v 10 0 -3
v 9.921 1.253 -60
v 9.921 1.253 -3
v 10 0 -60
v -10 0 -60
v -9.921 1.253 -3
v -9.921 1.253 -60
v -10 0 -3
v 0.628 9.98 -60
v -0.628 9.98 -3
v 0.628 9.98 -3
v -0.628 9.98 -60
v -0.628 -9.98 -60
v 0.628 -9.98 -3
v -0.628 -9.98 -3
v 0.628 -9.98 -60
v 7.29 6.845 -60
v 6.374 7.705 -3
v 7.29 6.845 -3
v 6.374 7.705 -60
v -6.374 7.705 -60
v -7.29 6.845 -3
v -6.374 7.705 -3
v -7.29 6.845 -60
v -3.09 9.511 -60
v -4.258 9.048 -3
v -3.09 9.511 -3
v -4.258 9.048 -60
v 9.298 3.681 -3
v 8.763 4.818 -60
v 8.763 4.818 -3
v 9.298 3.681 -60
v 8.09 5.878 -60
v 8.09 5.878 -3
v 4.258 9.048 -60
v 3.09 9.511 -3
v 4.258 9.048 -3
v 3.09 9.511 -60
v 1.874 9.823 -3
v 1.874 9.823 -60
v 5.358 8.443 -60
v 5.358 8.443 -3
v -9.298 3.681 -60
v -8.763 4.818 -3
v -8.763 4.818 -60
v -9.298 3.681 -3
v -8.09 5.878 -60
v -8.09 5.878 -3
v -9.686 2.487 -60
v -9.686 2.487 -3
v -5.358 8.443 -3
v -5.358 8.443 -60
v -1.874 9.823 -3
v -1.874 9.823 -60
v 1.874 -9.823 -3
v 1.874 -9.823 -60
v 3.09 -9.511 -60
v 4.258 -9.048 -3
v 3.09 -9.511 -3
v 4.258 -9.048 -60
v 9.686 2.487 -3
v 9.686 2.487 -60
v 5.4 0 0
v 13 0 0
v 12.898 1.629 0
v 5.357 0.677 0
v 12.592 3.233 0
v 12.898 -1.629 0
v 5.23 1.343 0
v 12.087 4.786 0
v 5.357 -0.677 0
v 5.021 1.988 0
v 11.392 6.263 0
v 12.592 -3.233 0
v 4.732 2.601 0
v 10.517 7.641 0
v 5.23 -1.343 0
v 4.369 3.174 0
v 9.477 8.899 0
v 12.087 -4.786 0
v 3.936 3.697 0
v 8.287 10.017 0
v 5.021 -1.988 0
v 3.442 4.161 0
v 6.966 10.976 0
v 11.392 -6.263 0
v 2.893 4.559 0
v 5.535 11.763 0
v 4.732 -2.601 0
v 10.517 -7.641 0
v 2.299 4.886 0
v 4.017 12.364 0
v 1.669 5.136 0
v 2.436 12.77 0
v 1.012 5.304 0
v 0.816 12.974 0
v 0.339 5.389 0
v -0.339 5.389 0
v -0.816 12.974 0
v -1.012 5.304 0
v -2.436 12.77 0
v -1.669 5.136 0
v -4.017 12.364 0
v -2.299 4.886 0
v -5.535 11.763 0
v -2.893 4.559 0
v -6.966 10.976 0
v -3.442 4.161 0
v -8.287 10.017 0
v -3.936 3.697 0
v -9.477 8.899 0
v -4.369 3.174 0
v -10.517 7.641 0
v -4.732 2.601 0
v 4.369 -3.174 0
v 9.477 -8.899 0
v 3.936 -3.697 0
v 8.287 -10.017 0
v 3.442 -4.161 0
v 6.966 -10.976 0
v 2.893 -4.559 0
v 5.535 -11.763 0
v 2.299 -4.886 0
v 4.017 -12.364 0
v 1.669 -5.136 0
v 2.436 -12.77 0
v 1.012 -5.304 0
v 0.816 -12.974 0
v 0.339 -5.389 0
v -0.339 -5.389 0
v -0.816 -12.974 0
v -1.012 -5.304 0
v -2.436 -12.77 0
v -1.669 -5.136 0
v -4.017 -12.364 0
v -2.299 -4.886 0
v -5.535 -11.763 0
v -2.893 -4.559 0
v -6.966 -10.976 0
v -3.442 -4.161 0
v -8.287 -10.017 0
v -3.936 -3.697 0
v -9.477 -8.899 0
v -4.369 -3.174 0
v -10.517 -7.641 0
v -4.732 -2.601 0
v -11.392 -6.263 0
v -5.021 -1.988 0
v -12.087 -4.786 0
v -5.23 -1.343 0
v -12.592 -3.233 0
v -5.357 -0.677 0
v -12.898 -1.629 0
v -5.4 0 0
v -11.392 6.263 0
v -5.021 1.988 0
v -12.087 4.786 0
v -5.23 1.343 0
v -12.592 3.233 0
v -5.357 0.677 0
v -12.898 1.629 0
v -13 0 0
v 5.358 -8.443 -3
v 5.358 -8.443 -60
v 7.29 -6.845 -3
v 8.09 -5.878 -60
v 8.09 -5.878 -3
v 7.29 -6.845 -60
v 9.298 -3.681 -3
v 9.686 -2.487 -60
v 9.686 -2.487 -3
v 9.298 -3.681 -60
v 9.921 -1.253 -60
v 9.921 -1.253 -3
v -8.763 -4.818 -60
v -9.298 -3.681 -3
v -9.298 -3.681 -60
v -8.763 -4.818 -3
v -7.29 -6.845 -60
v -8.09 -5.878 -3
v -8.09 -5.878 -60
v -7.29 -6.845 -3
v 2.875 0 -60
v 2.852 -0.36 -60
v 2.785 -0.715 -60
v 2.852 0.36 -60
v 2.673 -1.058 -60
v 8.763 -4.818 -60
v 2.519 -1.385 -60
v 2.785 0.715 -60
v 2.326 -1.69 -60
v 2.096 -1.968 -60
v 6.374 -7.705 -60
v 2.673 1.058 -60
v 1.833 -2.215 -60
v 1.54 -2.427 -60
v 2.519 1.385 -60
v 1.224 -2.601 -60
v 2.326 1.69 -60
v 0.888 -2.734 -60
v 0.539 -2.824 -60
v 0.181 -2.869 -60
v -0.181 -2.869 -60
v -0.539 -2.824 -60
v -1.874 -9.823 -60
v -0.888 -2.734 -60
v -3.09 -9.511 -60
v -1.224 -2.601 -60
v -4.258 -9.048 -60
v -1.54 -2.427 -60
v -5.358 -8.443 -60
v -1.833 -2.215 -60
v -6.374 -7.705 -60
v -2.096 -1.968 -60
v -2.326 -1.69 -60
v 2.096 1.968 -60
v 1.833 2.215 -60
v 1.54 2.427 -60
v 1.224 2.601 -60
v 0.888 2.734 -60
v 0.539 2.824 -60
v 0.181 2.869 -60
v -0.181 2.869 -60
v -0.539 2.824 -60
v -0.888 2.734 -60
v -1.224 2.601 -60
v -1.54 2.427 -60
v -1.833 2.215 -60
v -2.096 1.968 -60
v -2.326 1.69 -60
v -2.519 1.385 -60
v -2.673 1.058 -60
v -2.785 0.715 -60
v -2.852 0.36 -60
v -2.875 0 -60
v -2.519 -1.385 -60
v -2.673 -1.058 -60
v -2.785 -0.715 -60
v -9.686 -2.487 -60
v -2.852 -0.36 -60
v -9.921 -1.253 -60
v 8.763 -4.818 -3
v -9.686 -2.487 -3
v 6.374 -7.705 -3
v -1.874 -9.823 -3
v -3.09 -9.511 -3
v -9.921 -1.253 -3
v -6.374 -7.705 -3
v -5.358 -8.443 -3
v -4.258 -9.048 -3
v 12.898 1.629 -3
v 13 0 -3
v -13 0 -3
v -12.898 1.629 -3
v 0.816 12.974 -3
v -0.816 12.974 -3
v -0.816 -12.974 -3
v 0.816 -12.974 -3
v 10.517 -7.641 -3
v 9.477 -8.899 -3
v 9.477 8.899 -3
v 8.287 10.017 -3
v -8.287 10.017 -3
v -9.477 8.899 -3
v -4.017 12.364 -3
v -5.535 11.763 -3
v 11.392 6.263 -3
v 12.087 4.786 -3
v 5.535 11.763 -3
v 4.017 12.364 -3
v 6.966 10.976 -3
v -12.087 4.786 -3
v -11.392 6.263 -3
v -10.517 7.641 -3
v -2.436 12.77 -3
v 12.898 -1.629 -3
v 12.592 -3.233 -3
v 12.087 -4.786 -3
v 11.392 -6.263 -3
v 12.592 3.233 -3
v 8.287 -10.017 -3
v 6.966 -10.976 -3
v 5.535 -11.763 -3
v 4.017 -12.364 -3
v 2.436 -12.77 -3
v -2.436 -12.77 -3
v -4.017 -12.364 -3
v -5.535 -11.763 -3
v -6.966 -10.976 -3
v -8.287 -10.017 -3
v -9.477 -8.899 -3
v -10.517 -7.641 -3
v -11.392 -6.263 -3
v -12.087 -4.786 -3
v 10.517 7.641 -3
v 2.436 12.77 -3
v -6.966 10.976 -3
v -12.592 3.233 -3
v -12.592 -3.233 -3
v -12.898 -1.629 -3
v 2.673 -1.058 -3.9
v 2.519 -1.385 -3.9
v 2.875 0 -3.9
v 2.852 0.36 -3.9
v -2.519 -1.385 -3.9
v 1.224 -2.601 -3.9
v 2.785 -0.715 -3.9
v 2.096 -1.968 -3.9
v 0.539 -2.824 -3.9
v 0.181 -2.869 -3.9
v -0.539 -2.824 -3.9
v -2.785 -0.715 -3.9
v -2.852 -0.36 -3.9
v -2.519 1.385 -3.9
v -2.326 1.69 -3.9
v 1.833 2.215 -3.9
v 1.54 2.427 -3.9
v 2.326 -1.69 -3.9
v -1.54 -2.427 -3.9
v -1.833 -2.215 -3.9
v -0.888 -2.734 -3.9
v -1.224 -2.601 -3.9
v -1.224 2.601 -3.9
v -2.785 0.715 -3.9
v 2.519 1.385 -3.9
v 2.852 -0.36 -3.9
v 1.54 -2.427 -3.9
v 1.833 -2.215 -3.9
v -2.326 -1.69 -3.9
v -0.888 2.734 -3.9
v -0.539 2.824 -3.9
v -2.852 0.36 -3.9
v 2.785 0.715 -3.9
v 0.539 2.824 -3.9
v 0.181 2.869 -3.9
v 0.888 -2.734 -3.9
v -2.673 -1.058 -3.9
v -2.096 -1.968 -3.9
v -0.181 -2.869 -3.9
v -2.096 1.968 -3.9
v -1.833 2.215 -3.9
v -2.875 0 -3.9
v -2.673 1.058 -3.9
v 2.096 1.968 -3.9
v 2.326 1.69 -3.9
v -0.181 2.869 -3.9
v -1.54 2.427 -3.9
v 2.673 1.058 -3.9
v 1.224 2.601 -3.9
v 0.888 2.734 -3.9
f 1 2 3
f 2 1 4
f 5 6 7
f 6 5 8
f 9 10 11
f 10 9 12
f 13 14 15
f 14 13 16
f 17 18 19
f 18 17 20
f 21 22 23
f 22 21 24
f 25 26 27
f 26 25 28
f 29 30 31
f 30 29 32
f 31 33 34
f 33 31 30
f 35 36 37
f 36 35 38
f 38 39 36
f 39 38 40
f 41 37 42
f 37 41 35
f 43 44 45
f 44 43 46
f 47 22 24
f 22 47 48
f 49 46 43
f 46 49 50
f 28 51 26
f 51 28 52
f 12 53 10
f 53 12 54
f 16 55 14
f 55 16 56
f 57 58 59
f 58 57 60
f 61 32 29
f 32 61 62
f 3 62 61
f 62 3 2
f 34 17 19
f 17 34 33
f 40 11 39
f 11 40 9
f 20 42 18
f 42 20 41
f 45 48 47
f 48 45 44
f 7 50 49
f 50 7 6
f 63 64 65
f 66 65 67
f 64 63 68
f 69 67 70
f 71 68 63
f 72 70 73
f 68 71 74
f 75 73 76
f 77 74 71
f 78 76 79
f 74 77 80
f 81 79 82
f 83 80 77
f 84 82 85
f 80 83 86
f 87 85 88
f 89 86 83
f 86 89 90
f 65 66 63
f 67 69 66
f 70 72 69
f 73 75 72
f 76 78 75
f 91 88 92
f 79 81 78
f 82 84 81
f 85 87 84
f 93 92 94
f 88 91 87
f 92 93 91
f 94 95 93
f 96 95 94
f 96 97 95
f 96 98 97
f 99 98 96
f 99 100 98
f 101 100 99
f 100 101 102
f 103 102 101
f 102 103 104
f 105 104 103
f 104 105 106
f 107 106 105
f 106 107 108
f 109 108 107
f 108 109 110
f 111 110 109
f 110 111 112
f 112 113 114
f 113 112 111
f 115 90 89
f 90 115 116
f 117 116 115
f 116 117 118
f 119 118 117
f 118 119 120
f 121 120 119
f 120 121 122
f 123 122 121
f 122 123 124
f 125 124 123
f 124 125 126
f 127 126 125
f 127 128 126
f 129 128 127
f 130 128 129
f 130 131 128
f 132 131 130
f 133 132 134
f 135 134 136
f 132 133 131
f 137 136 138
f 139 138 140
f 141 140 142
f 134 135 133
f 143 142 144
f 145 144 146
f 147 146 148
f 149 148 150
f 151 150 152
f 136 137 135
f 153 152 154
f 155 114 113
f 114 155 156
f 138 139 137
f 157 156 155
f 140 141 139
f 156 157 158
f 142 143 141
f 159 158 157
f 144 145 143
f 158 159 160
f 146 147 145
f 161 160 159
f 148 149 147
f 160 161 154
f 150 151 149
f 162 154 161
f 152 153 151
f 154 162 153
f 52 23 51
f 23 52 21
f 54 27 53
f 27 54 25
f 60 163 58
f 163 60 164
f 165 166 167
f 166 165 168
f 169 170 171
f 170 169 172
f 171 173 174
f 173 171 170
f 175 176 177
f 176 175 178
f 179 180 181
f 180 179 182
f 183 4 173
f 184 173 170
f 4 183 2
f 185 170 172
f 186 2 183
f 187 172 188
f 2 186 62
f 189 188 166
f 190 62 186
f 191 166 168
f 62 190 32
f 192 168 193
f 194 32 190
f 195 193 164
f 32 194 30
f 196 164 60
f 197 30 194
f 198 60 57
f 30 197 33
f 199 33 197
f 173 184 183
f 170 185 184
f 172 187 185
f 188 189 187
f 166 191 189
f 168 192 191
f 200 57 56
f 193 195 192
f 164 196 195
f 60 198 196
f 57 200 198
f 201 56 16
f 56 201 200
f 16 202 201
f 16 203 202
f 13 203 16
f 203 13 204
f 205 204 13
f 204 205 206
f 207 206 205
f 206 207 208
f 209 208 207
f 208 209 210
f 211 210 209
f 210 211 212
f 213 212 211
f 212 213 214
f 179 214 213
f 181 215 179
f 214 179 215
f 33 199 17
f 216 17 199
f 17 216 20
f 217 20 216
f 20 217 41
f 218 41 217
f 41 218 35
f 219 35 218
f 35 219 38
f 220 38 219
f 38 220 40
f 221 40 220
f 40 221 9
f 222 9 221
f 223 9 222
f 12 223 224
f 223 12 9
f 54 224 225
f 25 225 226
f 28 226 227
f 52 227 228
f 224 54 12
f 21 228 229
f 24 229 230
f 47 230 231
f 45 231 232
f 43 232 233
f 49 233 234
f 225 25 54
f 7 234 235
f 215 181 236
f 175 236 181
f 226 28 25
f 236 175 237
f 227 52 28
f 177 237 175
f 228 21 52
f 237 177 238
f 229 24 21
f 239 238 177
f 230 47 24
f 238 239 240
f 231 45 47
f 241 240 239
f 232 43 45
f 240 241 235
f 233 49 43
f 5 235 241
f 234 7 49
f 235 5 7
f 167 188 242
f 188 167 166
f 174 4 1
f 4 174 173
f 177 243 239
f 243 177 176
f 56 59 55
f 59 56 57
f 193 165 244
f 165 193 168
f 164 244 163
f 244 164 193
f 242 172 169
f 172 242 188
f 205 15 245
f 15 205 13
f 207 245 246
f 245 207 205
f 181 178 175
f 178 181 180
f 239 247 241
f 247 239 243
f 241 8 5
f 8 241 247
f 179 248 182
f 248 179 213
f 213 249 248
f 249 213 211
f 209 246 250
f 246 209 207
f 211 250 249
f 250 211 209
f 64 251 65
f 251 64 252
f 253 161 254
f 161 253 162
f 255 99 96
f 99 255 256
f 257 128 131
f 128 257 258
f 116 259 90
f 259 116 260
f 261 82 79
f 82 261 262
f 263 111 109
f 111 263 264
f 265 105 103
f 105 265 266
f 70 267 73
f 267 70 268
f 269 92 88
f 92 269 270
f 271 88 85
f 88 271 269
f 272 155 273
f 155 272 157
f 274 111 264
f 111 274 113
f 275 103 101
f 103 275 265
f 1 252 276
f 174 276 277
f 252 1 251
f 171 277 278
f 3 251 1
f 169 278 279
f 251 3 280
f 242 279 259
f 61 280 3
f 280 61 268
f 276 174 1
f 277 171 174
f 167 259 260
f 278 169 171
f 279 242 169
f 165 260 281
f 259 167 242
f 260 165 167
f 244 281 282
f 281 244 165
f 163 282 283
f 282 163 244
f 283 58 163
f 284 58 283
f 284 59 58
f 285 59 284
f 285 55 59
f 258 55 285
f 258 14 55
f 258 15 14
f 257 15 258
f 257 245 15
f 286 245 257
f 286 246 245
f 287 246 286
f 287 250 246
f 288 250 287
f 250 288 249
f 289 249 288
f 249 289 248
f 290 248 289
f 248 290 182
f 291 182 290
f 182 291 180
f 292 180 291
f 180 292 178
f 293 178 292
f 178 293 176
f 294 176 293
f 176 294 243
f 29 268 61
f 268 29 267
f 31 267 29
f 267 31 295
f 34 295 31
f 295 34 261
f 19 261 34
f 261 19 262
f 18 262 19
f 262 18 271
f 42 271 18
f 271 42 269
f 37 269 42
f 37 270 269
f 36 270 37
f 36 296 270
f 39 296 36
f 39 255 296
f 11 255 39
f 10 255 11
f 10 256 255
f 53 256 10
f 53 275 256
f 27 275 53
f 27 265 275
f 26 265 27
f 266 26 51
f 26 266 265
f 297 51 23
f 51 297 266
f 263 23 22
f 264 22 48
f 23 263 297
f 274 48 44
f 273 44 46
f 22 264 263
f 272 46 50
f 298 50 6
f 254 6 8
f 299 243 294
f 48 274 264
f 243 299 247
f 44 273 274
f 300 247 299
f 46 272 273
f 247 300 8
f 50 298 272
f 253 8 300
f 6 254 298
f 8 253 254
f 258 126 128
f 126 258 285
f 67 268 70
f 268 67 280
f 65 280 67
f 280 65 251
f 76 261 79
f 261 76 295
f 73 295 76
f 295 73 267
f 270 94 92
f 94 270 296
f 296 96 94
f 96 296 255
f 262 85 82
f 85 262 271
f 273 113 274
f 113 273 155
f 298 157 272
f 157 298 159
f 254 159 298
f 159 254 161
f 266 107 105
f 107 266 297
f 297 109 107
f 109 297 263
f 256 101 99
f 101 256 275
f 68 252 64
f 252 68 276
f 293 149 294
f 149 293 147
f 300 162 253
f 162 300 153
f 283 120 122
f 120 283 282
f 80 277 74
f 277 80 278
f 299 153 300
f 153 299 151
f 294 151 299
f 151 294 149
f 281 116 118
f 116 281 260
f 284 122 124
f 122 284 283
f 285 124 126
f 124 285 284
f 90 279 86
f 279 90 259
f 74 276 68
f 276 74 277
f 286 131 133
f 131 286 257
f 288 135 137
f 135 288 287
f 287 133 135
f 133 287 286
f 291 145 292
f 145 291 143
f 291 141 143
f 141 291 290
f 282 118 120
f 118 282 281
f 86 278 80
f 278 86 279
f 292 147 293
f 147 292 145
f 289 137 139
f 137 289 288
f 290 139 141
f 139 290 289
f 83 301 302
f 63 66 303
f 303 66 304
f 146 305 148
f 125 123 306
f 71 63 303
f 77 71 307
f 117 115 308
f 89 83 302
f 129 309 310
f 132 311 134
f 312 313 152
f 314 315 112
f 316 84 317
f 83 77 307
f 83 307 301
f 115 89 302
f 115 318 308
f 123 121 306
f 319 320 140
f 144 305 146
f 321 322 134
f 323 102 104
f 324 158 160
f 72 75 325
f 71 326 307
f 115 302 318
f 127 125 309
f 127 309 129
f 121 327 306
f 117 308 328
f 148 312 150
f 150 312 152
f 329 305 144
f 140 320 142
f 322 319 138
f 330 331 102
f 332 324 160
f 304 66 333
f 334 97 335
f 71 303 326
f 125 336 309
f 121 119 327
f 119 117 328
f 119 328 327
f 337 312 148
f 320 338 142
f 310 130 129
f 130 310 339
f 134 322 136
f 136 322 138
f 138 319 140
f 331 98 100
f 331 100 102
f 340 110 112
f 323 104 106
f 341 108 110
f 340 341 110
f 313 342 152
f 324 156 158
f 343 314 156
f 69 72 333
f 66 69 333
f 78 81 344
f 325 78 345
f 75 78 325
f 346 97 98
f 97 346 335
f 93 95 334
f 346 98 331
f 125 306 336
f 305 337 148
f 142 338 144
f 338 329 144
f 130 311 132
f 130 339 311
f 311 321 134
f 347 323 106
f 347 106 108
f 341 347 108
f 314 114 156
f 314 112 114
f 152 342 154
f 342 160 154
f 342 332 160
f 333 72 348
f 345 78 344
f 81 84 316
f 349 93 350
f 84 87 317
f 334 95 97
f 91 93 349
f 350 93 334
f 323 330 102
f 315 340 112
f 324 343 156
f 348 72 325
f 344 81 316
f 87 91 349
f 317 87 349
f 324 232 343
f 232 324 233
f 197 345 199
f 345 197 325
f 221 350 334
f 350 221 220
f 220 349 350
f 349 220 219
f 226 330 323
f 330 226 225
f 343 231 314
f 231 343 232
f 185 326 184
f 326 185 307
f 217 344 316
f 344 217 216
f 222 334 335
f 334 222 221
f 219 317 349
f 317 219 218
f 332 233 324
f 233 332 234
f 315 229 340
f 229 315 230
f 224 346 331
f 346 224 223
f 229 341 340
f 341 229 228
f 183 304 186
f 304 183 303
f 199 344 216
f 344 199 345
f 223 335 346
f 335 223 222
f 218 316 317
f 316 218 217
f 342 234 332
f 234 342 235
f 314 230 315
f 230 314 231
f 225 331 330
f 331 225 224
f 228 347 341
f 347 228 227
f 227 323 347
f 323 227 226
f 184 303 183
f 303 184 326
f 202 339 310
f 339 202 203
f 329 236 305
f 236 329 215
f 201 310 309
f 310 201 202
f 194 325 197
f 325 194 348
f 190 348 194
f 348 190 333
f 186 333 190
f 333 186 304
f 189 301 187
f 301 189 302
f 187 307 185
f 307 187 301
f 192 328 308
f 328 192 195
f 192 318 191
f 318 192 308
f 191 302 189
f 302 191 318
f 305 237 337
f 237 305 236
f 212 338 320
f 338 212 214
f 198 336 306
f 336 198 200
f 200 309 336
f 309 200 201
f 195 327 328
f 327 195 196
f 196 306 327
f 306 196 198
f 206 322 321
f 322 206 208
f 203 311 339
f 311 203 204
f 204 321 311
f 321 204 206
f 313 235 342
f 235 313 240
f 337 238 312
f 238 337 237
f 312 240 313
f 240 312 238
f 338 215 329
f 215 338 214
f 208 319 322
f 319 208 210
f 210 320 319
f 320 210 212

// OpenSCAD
$fn = 50;


difference() {
	union() {
		translate(v = [0, 0, -60.0000000000]) {
			cylinder(h = 60, r = 10.0000000000);
		}
		translate(v = [0, 0, -3.0000000000]) {
			cylinder(h = 3, r = 13.0000000000);
		}
	}
	union() {
		translate(v = [0, 0, 0]) {
			rotate(a = [0, 0, 0]) {
				difference() {
					union() {
						#translate(v = [0, 0, -60.0000000000]) {
							cylinder(h = 60, r = 2.6000000000);
						}
						#translate(v = [0, 0, -3.9000000000]) {
							cylinder(h = 3.9000000000, r = 10.0000000000, r1 = 2.8750000000, r2 = 5.4000000000);
						}
						#translate(v = [0, 0, -60.0000000000]) {
							cylinder(h = 60, r = 2.8750000000);
						}
						#translate(v = [0, 0, -60.0000000000]) {
							cylinder(h = 60, r = 2.6000000000);
						}
					}
					union();
				}
			}
		}
	}
}
